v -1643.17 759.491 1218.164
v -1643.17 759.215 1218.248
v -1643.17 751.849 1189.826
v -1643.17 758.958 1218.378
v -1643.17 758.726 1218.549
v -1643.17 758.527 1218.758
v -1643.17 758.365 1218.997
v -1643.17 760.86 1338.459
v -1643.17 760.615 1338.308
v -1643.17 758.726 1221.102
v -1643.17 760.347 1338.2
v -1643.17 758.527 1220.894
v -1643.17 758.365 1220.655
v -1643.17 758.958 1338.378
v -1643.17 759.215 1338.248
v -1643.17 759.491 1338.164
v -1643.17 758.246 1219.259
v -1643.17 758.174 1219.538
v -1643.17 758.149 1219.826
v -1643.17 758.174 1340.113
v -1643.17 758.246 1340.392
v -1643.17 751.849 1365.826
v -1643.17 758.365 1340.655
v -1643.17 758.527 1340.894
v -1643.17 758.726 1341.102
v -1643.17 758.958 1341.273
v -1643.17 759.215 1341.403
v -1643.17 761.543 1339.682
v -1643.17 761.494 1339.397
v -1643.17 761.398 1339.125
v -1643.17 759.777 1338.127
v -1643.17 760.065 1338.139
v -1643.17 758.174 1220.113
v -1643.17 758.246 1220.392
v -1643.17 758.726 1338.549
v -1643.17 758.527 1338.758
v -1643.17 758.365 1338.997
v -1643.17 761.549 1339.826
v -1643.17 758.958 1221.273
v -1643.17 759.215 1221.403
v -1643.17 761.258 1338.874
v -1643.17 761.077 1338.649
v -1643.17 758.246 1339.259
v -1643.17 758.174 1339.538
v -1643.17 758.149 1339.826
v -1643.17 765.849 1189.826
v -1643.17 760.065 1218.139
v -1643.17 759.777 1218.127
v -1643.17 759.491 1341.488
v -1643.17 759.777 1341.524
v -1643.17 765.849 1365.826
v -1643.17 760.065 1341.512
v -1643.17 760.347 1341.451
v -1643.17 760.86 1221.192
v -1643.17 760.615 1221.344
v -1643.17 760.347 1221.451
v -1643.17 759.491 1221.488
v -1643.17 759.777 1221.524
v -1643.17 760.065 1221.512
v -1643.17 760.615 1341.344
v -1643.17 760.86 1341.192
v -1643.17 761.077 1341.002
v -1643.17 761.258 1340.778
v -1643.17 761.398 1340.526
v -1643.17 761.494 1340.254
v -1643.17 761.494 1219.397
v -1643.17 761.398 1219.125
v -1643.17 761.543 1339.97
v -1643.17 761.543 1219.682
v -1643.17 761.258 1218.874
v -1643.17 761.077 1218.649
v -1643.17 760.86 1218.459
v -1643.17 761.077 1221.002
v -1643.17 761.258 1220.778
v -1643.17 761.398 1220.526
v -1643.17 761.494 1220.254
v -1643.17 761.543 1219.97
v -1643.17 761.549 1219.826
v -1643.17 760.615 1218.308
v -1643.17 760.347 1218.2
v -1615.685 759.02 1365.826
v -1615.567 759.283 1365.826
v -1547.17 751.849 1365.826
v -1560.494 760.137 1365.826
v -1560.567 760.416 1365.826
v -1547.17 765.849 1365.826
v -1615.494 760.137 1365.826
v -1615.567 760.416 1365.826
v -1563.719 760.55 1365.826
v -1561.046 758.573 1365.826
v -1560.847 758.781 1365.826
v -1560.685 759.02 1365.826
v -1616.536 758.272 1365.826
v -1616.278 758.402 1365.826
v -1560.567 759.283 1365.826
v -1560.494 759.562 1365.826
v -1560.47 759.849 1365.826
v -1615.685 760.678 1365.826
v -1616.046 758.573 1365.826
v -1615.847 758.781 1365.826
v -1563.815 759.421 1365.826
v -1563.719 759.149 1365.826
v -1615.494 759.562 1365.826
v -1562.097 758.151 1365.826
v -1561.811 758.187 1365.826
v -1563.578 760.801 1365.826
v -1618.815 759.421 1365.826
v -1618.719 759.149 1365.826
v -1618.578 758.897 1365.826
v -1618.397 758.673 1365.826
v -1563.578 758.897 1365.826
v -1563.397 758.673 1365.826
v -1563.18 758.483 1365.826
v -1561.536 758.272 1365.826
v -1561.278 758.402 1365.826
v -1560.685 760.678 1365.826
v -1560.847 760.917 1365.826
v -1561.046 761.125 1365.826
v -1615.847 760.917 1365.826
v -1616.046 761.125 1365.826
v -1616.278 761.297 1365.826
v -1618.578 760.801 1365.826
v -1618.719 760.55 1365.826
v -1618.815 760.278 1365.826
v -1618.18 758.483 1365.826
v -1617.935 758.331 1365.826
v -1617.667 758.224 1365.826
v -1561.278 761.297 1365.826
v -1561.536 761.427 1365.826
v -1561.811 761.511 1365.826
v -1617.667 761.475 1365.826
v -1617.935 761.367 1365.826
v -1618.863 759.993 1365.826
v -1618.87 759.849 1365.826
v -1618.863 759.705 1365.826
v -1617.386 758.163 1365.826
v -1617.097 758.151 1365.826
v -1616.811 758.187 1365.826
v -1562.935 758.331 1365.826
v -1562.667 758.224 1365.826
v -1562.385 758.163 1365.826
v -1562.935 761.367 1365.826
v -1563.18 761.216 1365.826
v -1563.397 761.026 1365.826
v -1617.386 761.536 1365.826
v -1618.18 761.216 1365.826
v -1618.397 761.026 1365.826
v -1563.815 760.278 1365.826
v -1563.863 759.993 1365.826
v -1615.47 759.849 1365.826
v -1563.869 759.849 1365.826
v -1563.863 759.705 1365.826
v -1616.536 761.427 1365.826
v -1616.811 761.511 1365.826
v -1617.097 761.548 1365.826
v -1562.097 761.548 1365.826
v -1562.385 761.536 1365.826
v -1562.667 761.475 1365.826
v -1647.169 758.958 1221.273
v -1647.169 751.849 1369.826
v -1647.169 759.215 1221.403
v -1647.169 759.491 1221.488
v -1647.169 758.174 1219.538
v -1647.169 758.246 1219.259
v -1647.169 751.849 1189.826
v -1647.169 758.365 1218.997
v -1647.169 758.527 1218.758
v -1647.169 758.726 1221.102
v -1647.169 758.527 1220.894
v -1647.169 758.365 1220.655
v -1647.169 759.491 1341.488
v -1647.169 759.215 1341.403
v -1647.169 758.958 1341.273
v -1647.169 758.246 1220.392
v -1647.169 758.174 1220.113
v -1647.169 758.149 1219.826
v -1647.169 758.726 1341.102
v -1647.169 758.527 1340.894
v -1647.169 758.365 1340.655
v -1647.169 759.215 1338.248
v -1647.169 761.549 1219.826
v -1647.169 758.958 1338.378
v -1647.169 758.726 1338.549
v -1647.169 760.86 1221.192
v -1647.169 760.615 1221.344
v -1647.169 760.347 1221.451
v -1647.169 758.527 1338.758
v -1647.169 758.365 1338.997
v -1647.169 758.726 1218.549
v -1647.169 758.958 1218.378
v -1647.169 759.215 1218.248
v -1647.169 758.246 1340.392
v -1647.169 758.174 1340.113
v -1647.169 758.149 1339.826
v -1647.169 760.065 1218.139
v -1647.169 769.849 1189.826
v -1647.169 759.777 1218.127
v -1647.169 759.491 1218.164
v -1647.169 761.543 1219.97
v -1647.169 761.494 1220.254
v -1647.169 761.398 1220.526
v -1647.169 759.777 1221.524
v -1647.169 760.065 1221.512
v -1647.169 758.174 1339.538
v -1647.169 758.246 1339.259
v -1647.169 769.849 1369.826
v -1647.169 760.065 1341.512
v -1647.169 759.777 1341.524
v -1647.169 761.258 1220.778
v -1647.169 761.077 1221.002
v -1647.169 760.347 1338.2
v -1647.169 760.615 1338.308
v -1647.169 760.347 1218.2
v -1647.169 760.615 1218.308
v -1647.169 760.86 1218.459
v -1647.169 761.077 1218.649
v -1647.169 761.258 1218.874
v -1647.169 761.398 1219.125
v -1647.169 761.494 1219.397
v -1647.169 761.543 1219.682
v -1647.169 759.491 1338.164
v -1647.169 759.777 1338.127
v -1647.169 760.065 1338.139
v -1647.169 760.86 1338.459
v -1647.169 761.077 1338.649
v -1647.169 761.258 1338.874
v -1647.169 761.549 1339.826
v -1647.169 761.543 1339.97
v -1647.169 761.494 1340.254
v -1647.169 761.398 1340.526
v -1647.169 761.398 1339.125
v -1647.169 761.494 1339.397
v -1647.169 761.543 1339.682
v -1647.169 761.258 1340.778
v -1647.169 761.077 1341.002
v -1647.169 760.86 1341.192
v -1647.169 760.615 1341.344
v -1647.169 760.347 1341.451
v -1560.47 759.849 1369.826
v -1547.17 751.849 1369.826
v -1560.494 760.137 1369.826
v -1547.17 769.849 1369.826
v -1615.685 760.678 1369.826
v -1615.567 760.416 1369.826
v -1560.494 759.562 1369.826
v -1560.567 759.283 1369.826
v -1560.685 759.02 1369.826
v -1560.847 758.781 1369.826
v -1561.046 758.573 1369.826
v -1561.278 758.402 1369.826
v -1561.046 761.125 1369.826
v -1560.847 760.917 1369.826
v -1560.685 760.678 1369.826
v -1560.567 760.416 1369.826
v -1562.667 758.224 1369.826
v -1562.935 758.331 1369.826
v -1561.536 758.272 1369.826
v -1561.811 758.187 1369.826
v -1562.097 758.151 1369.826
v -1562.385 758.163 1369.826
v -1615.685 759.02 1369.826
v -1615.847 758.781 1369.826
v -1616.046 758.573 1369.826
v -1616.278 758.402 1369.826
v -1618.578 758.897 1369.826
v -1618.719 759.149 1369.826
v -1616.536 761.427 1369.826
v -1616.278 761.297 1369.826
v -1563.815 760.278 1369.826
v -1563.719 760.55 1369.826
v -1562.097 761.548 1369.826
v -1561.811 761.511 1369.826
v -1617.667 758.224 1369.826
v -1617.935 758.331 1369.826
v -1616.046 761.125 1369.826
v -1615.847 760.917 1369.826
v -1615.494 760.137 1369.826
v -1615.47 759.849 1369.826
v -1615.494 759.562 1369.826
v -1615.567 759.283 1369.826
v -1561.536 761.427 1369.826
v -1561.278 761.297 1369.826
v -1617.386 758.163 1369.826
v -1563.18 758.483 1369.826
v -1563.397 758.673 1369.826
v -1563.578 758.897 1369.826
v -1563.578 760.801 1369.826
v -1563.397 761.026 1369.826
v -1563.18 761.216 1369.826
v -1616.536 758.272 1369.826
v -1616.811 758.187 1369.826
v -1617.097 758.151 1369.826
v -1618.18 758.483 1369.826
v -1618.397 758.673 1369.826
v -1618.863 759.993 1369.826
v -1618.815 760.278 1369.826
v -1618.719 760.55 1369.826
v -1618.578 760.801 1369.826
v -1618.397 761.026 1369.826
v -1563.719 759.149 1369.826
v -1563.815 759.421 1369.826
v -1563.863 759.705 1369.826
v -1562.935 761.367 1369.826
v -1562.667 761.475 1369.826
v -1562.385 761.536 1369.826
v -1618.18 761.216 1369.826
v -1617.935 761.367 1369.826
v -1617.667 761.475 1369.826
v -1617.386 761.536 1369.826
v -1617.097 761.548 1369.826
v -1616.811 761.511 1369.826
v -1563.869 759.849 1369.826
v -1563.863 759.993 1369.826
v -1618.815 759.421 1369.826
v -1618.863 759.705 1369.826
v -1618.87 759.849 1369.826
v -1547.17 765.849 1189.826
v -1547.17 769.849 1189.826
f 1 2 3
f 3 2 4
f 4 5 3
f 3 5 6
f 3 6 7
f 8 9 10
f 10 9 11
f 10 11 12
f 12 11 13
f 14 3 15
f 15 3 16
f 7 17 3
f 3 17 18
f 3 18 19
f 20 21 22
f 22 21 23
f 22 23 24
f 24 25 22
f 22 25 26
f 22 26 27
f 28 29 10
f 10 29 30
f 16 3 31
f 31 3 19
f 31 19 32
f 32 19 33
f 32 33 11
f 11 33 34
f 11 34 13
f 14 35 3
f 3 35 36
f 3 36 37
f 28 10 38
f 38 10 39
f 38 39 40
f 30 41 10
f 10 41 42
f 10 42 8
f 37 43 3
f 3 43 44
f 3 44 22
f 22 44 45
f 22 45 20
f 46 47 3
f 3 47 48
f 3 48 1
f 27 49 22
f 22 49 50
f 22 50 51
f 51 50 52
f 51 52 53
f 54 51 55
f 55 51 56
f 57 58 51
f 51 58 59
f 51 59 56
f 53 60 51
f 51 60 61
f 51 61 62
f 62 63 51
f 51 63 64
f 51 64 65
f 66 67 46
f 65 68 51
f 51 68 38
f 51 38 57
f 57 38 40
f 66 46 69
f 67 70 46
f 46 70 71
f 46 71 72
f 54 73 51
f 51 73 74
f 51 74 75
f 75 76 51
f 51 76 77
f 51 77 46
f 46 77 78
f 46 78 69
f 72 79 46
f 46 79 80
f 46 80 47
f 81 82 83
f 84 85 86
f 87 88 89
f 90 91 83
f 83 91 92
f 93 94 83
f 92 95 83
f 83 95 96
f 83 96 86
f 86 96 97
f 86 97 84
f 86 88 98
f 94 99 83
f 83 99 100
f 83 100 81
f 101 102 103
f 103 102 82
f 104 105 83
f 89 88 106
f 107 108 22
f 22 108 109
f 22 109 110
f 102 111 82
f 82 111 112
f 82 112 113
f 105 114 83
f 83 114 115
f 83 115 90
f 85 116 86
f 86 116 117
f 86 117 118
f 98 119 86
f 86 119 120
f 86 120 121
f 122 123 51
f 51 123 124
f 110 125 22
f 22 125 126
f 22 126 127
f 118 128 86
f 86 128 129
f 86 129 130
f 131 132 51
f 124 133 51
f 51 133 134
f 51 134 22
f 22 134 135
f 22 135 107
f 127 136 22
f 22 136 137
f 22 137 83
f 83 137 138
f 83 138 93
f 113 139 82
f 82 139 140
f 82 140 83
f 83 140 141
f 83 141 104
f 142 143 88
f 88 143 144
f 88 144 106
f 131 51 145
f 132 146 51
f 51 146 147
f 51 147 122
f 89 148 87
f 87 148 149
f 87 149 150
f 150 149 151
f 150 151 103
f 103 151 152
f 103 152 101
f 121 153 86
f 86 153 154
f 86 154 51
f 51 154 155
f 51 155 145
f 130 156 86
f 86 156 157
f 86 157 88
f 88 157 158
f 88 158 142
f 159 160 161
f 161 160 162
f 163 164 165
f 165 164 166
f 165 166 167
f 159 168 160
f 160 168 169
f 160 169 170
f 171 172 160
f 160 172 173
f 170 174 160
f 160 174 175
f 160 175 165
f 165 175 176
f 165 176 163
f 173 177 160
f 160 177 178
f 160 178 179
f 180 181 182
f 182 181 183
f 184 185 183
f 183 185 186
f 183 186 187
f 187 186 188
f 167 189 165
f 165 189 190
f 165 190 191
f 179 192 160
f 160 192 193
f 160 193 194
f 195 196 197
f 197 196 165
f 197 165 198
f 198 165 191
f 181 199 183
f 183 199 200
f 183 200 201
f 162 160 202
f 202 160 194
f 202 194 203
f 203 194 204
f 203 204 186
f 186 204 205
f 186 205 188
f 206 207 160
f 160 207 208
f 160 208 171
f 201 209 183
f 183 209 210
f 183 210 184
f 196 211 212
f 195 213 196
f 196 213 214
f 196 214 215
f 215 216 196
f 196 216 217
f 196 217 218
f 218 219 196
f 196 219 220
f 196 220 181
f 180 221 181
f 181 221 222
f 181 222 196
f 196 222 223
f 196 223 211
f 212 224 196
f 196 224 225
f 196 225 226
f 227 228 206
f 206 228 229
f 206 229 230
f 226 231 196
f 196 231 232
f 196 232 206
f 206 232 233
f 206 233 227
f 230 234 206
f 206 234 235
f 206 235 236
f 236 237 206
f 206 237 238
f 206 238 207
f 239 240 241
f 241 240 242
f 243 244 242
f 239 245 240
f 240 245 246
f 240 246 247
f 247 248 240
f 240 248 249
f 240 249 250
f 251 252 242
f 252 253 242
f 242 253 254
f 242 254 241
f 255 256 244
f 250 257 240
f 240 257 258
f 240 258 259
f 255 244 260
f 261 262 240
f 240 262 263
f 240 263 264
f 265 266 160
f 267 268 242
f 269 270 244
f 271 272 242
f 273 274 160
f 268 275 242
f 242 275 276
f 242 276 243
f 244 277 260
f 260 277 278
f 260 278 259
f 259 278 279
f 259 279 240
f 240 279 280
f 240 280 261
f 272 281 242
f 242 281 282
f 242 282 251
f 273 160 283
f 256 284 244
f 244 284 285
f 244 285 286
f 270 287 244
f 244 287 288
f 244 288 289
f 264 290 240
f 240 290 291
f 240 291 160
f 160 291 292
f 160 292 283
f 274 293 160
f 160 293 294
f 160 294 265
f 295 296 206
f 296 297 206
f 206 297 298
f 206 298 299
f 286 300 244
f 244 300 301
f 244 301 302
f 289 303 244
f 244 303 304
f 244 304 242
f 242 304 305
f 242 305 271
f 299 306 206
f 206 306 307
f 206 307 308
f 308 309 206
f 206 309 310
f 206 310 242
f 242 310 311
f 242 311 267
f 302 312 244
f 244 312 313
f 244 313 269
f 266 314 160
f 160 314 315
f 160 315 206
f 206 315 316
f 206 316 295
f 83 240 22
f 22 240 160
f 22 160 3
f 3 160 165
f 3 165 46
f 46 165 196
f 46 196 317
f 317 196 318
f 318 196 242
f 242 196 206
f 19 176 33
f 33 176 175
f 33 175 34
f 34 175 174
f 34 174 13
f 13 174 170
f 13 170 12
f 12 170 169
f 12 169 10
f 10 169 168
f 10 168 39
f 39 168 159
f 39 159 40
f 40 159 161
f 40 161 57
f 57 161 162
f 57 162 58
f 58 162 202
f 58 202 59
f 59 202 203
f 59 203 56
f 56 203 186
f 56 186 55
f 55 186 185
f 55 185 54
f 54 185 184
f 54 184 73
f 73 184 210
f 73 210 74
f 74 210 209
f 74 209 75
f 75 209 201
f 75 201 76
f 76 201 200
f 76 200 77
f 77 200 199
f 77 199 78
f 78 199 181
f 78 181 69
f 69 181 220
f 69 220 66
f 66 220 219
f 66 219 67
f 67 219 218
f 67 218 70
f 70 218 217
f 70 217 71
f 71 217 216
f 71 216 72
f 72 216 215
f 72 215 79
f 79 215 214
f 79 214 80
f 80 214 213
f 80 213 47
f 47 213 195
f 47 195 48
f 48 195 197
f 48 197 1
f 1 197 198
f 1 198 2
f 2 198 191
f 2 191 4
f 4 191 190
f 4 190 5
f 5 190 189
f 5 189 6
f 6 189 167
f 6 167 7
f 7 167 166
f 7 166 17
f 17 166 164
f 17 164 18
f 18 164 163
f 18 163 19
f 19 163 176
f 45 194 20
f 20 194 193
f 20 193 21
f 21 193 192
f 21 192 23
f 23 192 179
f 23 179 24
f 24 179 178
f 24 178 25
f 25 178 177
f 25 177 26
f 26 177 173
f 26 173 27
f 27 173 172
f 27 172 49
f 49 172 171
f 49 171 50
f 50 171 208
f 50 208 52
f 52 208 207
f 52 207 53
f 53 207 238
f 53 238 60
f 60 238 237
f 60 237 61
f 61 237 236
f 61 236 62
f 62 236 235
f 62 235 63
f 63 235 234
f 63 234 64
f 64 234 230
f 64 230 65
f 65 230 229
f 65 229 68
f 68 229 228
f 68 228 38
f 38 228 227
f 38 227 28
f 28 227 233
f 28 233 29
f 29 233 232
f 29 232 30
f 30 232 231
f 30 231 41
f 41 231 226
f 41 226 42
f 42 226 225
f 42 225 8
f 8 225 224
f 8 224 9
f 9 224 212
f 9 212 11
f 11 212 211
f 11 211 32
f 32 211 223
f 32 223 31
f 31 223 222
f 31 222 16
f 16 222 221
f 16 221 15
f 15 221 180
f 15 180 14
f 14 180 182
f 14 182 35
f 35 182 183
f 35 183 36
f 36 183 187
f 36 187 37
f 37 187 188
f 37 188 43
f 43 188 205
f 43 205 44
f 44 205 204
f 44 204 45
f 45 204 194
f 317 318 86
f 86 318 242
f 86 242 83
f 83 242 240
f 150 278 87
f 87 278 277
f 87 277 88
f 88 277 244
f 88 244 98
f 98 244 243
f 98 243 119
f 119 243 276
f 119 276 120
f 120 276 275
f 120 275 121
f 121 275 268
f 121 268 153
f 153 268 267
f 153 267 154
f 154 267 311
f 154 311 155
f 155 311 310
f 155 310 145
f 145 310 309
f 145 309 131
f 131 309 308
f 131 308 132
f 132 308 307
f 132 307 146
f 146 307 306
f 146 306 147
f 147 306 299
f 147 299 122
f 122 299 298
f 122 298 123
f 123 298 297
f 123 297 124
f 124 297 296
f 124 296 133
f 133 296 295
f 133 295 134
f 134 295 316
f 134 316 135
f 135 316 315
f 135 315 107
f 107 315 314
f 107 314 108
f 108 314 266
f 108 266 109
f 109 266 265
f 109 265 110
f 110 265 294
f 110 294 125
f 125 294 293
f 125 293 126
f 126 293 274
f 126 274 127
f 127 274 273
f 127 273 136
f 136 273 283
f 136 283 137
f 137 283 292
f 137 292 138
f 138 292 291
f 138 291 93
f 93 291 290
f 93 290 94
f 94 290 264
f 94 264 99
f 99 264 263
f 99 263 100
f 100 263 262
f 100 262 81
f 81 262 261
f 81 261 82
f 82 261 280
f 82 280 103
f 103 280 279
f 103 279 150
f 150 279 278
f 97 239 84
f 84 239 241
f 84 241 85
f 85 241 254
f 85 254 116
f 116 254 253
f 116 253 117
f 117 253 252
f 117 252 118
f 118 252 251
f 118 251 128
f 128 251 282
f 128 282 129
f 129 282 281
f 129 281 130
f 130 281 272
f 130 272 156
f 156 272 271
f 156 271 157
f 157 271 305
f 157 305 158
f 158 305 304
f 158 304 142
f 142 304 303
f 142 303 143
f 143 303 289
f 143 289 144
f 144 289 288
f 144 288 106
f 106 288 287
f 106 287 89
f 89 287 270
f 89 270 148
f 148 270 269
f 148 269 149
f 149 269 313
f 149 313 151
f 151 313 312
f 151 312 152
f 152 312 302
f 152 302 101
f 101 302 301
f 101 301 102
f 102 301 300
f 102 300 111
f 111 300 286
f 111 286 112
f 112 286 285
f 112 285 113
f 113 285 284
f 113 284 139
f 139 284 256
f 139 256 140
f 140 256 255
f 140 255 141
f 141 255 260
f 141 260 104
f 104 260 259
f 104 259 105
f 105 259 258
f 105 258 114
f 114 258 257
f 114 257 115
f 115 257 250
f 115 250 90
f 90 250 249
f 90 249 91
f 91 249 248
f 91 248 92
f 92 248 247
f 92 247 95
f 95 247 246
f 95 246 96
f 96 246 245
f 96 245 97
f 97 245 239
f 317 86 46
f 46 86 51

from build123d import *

# Parameters (mm, degrees)
SKETCH1_W           = 180
SKETCH1_H           = 18
SKETCH1_R           = 1.7
BOSS_EXTRUDE1_DEPTH = 4
SKETCH2_W           = 100
SKETCH2_H           = 18
SKETCH2_R           = 1.7
BOSS_EXTRUDE2_DEPTH = 4
SKETCH3_W           = 96
SKETCH3_H           = 4
BOSS_EXTRUDE3_DEPTH = 176


with BuildPart() as part:
    # Sketch1 → Boss-Extrude1 (new body)
    with BuildSketch(Plane(origin=(-1647.169528543, 0, 0), x_dir=(0, 0, -1), z_dir=(1, 0, 0))):
        with Locations((-1279.825666692, 760.849345995)):
            Rectangle(SKETCH1_W, SKETCH1_H)
        with Locations((-1219.825666692, 759.849345995)):
            Circle(SKETCH1_R, mode=Mode.SUBTRACT)
        with Locations((-1339.825666692, 759.849345995)):
            Circle(SKETCH1_R, mode=Mode.SUBTRACT)
    extrude(amount=BOSS_EXTRUDE1_DEPTH)

    # Sketch2 → Boss-Extrude2 (add)
    with BuildSketch(Plane(origin=(0, 0, 1369.825666692), x_dir=(-1, 0, 0), z_dir=(0, 0, -1))):
        with Locations((1597.169528543, 760.849345995)):
            Rectangle(SKETCH2_W, SKETCH2_H)
        with Locations((1617.169528543, 759.849345995)):
            Circle(SKETCH2_R, mode=Mode.SUBTRACT)
        with Locations((1562.169528543, 759.849345995)):
            Circle(SKETCH2_R, mode=Mode.SUBTRACT)
    extrude(amount=BOSS_EXTRUDE2_DEPTH)

    # Sketch3 → Boss-Extrude3 (add)
    with BuildSketch(Plane(origin=(0, 0, 1365.825666692), x_dir=(-1, 0, 0), z_dir=(0, 0, -1))):
        with Locations((1595.169528543, 767.849345995)):
            Rectangle(SKETCH3_W, SKETCH3_H)
    extrude(amount=BOSS_EXTRUDE3_DEPTH)


solid = part.part
